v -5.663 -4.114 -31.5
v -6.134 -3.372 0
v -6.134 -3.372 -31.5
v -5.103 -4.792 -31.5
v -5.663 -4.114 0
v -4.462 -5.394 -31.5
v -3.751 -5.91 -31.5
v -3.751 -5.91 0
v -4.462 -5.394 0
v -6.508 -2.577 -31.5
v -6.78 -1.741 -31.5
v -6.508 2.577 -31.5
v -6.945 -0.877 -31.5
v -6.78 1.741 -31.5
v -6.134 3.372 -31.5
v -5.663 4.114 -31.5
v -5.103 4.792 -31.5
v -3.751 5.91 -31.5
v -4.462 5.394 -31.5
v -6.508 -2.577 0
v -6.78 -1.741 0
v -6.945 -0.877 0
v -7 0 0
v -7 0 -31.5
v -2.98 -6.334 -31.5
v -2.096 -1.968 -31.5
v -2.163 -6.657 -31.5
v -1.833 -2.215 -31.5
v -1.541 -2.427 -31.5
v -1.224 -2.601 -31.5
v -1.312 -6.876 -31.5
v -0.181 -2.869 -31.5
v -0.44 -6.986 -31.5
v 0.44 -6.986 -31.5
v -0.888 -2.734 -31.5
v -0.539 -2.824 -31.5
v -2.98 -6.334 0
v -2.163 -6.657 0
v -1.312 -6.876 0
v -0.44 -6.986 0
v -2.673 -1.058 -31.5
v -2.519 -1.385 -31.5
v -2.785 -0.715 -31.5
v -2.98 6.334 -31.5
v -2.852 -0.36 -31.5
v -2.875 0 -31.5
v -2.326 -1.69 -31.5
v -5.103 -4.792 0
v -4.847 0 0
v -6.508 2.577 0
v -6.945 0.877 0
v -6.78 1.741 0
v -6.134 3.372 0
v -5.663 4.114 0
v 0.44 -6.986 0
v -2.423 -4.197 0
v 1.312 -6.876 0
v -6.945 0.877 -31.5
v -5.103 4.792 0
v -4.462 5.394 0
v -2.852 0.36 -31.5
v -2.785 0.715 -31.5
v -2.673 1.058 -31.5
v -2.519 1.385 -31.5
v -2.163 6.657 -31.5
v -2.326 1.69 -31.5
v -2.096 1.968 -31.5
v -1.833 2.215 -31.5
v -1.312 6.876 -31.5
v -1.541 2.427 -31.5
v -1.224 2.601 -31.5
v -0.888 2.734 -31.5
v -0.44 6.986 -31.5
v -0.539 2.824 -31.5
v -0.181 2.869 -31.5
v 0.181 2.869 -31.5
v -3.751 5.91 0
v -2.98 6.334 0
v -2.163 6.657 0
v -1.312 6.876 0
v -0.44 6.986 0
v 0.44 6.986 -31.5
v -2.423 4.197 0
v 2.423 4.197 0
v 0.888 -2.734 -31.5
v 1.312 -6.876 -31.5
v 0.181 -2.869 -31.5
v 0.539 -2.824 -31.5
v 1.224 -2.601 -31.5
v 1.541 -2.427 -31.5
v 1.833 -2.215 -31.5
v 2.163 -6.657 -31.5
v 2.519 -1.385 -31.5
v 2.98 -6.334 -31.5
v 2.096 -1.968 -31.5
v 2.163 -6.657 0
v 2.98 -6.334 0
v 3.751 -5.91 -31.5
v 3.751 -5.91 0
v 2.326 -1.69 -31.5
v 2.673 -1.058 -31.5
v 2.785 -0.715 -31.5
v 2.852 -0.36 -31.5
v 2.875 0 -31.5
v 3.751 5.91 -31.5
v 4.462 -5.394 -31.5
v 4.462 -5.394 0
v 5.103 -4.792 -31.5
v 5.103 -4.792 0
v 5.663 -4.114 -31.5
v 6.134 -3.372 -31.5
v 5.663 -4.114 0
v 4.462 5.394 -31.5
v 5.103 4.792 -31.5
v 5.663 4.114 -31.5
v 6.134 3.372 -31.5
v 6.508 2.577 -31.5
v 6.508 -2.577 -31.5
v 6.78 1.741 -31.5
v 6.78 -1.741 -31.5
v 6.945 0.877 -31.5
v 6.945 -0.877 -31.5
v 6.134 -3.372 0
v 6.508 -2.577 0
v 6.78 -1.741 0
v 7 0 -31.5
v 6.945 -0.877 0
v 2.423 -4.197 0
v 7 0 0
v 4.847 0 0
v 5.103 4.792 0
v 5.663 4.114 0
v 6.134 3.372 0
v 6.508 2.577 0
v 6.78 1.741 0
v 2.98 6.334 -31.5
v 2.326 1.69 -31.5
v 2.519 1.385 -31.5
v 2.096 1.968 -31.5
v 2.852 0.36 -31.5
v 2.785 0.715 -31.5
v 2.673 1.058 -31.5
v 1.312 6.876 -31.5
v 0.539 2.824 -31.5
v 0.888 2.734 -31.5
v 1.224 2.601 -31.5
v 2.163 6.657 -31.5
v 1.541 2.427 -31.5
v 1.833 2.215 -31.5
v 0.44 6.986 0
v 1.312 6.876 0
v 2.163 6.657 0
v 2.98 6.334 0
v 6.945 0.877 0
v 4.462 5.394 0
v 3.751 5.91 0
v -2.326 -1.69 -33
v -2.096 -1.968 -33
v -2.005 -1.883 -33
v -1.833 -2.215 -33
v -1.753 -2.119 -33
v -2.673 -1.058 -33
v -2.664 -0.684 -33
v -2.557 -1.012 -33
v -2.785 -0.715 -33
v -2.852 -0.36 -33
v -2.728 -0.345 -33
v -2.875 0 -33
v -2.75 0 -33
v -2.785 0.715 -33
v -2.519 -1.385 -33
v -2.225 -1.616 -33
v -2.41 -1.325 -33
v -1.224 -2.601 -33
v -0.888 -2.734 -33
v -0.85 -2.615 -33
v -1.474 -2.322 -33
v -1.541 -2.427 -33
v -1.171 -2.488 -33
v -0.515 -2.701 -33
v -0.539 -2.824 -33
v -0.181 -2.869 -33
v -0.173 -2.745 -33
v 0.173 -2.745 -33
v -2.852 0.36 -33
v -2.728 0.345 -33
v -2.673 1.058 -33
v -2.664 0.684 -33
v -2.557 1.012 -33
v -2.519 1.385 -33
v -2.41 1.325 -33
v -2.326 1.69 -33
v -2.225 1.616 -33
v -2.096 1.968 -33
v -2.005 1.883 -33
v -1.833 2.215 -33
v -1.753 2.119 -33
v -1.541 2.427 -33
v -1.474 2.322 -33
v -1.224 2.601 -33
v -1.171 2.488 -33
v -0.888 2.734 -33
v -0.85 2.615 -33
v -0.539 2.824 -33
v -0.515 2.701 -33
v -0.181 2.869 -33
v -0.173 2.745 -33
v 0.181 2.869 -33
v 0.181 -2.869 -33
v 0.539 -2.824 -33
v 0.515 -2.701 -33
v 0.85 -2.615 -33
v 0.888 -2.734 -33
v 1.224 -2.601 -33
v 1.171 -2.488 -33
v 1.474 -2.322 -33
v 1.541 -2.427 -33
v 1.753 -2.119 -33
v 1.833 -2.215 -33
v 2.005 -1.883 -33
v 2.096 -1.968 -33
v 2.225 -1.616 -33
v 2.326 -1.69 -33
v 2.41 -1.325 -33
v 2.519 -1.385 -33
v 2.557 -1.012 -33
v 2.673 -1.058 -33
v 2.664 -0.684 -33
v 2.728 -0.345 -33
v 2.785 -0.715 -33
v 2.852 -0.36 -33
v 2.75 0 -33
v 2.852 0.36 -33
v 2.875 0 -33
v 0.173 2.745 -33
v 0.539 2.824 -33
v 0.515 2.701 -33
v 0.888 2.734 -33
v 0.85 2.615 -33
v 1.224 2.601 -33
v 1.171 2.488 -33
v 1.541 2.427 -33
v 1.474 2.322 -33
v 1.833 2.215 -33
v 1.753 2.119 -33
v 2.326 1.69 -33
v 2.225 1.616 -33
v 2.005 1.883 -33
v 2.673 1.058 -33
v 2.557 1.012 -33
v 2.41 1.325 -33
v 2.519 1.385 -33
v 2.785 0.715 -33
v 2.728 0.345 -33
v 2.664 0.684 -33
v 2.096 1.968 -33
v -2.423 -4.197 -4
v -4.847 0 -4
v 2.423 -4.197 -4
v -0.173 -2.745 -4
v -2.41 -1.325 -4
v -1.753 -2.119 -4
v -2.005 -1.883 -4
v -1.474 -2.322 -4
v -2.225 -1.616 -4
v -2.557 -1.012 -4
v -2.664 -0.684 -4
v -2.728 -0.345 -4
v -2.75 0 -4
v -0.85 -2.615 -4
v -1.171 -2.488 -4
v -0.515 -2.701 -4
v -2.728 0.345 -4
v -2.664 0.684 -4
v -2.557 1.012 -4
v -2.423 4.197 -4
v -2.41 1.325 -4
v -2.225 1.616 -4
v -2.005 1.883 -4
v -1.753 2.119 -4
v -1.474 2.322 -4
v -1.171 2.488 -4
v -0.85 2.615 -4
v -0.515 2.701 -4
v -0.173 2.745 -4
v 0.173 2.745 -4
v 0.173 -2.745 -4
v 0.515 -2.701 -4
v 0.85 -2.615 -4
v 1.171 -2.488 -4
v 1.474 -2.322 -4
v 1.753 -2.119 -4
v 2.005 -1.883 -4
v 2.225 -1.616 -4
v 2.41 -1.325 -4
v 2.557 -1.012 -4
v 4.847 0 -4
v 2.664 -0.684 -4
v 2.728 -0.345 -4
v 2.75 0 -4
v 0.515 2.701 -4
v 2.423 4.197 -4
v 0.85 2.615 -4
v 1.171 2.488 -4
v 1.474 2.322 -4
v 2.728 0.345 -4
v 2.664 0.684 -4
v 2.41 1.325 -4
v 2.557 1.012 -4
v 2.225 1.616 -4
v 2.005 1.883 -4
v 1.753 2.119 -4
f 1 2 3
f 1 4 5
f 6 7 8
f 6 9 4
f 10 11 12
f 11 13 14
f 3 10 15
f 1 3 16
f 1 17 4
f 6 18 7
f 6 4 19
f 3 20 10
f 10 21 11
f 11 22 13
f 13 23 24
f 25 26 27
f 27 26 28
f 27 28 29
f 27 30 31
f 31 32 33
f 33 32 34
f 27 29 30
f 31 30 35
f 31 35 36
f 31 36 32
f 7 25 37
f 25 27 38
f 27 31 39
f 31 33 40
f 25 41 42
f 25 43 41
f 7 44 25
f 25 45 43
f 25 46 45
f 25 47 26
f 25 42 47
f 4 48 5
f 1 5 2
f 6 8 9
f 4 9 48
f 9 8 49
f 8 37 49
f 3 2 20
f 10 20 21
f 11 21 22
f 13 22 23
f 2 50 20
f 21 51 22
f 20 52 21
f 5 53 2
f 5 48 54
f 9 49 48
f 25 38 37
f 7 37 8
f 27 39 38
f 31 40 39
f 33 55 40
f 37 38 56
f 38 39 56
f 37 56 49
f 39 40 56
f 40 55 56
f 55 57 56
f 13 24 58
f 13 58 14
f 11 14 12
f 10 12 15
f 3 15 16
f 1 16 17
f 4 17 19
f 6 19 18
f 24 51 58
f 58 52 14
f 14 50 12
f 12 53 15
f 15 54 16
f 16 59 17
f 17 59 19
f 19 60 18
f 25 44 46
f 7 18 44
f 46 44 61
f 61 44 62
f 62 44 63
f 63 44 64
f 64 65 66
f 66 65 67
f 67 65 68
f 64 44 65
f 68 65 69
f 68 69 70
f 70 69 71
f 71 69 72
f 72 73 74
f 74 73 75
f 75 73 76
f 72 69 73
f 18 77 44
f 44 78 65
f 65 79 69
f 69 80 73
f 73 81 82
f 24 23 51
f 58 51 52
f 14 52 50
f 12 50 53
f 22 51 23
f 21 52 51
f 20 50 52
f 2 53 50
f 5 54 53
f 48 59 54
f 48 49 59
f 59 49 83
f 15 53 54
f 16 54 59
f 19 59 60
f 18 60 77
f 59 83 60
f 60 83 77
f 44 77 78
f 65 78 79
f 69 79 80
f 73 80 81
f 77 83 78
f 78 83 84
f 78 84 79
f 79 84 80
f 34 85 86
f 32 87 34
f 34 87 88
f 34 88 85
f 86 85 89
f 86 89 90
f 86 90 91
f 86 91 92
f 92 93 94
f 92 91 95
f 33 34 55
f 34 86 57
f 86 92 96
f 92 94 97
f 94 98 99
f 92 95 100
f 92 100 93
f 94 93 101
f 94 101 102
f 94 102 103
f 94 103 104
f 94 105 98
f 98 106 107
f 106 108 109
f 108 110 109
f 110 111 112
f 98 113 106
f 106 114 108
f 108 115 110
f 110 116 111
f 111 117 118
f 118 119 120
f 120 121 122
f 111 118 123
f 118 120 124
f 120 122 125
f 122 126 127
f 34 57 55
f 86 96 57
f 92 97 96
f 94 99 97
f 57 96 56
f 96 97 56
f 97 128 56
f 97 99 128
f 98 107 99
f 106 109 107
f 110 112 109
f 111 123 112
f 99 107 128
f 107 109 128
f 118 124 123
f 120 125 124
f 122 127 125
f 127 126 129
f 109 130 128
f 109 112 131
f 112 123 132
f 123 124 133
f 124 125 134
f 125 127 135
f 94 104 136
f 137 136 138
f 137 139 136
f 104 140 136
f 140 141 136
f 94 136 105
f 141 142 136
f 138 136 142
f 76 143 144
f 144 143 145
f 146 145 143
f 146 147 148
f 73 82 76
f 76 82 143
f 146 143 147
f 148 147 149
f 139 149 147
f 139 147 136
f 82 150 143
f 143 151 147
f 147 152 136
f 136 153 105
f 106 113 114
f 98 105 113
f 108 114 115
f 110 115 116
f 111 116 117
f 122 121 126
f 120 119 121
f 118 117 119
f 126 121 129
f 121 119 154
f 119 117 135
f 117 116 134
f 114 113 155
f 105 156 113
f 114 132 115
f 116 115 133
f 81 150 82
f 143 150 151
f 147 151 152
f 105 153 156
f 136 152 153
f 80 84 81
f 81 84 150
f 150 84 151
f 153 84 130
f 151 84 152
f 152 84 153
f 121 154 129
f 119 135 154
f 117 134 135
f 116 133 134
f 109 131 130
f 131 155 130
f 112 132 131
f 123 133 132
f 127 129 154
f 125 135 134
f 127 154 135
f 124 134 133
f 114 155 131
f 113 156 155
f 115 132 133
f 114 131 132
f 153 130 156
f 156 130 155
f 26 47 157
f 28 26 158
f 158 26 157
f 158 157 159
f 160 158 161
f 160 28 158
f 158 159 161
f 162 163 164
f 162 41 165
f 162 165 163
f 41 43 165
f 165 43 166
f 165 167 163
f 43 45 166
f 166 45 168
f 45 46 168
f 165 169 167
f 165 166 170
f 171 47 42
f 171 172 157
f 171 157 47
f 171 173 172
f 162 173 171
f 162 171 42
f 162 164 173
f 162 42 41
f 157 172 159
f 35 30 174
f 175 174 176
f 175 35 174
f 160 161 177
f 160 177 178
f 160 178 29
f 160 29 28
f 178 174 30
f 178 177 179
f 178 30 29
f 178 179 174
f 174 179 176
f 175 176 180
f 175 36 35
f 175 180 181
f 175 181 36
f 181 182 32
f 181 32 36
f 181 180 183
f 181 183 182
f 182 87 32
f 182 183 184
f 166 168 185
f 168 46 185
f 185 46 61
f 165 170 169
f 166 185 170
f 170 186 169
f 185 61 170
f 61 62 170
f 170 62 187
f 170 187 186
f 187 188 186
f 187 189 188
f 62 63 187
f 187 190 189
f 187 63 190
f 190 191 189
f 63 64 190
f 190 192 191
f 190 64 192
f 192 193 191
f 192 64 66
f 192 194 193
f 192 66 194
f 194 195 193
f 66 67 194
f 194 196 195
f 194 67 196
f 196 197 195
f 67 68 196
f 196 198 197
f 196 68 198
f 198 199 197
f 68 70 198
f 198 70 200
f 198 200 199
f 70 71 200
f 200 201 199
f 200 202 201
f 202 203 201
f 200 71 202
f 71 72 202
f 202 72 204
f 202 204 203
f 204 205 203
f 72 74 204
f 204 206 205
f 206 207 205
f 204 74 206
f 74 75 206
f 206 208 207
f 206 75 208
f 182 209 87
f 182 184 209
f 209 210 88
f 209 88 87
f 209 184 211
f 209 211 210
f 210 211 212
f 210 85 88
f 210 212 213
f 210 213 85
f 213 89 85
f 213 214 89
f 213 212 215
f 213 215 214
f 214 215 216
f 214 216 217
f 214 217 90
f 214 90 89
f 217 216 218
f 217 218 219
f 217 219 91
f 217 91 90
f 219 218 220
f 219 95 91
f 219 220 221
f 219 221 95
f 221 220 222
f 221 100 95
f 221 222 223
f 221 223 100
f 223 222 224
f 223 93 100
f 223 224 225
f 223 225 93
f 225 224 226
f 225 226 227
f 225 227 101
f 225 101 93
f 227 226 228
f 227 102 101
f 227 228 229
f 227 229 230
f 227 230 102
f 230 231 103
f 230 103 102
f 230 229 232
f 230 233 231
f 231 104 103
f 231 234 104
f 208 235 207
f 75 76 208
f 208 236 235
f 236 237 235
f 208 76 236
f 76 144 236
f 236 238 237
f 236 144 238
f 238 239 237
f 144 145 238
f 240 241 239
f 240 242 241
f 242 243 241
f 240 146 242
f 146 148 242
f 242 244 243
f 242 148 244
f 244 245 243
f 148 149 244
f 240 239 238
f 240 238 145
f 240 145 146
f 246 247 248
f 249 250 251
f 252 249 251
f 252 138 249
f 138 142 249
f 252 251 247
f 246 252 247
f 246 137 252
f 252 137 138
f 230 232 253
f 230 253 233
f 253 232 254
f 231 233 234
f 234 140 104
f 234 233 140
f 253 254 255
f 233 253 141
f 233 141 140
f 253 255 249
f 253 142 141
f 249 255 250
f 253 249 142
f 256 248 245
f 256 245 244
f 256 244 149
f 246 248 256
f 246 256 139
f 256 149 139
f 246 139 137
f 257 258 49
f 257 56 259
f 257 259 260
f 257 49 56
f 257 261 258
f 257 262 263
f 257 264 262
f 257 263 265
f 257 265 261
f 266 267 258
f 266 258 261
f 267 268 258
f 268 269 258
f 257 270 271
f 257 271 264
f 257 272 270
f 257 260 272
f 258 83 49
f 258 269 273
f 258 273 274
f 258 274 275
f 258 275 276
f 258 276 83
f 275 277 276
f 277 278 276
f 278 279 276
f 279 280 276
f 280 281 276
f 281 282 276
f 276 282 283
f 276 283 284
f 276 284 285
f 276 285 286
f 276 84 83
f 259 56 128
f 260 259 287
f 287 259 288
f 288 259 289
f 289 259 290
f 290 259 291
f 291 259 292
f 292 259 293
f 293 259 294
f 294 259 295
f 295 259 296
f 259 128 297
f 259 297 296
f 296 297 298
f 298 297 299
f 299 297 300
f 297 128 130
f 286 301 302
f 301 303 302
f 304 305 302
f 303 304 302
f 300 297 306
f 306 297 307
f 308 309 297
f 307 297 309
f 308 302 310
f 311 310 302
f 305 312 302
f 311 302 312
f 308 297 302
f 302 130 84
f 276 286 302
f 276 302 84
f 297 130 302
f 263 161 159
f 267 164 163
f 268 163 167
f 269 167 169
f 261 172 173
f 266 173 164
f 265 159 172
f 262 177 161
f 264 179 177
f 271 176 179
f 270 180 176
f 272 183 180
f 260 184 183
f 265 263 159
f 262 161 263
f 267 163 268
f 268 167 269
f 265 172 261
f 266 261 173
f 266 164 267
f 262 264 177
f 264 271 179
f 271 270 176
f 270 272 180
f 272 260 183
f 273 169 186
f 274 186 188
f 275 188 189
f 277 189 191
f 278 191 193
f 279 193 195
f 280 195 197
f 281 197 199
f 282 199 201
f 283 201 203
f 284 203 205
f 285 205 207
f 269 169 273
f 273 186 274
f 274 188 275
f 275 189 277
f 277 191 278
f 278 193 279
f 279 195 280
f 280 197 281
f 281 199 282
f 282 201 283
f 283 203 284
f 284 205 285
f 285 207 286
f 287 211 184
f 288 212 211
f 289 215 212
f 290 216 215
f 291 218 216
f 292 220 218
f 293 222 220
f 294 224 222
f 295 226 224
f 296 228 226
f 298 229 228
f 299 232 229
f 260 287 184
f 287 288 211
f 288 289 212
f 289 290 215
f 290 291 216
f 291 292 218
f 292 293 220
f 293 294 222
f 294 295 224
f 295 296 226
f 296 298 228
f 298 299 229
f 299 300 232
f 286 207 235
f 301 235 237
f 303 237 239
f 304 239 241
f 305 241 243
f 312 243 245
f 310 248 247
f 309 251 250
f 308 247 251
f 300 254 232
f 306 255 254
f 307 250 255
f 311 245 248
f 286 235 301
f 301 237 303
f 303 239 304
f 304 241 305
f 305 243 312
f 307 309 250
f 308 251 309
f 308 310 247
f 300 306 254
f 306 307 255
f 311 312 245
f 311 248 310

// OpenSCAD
$fn = 50;

difference() {
	union() {
		translate(v = [0, 0, -31.5]) {
			cylinder(h = 31.5, r = 7.0);
		}
		#translate(v = [0, 0, -33.0]) {
			cylinder(h = 33, r = 2.875);
		}
	}
	union() {
		translate(v = [0, 0, 0]) {
			rotate(a = [0, 0, 0]) {
				difference() {
					union() {
						translate(v = [0, 0, -4]) {
							linear_extrude(height = 4) {
								polygon(points = [[4.8468, 0.0], [2.4234000000000004, 4.197451927062417], [-2.423399999999999, 4.197451927062417], [-4.8468, 5.935618106107392e-16], [-2.423400000000002, -4.197451927062416], [2.423399999999997, -4.197451927062419]]);
							}
						}
					}
					union();
				}
			}
		}
		#translate(v = [0, 0, -100.0]) {
			cylinder(h = 200, r = 2.75);
		}
	}
}
